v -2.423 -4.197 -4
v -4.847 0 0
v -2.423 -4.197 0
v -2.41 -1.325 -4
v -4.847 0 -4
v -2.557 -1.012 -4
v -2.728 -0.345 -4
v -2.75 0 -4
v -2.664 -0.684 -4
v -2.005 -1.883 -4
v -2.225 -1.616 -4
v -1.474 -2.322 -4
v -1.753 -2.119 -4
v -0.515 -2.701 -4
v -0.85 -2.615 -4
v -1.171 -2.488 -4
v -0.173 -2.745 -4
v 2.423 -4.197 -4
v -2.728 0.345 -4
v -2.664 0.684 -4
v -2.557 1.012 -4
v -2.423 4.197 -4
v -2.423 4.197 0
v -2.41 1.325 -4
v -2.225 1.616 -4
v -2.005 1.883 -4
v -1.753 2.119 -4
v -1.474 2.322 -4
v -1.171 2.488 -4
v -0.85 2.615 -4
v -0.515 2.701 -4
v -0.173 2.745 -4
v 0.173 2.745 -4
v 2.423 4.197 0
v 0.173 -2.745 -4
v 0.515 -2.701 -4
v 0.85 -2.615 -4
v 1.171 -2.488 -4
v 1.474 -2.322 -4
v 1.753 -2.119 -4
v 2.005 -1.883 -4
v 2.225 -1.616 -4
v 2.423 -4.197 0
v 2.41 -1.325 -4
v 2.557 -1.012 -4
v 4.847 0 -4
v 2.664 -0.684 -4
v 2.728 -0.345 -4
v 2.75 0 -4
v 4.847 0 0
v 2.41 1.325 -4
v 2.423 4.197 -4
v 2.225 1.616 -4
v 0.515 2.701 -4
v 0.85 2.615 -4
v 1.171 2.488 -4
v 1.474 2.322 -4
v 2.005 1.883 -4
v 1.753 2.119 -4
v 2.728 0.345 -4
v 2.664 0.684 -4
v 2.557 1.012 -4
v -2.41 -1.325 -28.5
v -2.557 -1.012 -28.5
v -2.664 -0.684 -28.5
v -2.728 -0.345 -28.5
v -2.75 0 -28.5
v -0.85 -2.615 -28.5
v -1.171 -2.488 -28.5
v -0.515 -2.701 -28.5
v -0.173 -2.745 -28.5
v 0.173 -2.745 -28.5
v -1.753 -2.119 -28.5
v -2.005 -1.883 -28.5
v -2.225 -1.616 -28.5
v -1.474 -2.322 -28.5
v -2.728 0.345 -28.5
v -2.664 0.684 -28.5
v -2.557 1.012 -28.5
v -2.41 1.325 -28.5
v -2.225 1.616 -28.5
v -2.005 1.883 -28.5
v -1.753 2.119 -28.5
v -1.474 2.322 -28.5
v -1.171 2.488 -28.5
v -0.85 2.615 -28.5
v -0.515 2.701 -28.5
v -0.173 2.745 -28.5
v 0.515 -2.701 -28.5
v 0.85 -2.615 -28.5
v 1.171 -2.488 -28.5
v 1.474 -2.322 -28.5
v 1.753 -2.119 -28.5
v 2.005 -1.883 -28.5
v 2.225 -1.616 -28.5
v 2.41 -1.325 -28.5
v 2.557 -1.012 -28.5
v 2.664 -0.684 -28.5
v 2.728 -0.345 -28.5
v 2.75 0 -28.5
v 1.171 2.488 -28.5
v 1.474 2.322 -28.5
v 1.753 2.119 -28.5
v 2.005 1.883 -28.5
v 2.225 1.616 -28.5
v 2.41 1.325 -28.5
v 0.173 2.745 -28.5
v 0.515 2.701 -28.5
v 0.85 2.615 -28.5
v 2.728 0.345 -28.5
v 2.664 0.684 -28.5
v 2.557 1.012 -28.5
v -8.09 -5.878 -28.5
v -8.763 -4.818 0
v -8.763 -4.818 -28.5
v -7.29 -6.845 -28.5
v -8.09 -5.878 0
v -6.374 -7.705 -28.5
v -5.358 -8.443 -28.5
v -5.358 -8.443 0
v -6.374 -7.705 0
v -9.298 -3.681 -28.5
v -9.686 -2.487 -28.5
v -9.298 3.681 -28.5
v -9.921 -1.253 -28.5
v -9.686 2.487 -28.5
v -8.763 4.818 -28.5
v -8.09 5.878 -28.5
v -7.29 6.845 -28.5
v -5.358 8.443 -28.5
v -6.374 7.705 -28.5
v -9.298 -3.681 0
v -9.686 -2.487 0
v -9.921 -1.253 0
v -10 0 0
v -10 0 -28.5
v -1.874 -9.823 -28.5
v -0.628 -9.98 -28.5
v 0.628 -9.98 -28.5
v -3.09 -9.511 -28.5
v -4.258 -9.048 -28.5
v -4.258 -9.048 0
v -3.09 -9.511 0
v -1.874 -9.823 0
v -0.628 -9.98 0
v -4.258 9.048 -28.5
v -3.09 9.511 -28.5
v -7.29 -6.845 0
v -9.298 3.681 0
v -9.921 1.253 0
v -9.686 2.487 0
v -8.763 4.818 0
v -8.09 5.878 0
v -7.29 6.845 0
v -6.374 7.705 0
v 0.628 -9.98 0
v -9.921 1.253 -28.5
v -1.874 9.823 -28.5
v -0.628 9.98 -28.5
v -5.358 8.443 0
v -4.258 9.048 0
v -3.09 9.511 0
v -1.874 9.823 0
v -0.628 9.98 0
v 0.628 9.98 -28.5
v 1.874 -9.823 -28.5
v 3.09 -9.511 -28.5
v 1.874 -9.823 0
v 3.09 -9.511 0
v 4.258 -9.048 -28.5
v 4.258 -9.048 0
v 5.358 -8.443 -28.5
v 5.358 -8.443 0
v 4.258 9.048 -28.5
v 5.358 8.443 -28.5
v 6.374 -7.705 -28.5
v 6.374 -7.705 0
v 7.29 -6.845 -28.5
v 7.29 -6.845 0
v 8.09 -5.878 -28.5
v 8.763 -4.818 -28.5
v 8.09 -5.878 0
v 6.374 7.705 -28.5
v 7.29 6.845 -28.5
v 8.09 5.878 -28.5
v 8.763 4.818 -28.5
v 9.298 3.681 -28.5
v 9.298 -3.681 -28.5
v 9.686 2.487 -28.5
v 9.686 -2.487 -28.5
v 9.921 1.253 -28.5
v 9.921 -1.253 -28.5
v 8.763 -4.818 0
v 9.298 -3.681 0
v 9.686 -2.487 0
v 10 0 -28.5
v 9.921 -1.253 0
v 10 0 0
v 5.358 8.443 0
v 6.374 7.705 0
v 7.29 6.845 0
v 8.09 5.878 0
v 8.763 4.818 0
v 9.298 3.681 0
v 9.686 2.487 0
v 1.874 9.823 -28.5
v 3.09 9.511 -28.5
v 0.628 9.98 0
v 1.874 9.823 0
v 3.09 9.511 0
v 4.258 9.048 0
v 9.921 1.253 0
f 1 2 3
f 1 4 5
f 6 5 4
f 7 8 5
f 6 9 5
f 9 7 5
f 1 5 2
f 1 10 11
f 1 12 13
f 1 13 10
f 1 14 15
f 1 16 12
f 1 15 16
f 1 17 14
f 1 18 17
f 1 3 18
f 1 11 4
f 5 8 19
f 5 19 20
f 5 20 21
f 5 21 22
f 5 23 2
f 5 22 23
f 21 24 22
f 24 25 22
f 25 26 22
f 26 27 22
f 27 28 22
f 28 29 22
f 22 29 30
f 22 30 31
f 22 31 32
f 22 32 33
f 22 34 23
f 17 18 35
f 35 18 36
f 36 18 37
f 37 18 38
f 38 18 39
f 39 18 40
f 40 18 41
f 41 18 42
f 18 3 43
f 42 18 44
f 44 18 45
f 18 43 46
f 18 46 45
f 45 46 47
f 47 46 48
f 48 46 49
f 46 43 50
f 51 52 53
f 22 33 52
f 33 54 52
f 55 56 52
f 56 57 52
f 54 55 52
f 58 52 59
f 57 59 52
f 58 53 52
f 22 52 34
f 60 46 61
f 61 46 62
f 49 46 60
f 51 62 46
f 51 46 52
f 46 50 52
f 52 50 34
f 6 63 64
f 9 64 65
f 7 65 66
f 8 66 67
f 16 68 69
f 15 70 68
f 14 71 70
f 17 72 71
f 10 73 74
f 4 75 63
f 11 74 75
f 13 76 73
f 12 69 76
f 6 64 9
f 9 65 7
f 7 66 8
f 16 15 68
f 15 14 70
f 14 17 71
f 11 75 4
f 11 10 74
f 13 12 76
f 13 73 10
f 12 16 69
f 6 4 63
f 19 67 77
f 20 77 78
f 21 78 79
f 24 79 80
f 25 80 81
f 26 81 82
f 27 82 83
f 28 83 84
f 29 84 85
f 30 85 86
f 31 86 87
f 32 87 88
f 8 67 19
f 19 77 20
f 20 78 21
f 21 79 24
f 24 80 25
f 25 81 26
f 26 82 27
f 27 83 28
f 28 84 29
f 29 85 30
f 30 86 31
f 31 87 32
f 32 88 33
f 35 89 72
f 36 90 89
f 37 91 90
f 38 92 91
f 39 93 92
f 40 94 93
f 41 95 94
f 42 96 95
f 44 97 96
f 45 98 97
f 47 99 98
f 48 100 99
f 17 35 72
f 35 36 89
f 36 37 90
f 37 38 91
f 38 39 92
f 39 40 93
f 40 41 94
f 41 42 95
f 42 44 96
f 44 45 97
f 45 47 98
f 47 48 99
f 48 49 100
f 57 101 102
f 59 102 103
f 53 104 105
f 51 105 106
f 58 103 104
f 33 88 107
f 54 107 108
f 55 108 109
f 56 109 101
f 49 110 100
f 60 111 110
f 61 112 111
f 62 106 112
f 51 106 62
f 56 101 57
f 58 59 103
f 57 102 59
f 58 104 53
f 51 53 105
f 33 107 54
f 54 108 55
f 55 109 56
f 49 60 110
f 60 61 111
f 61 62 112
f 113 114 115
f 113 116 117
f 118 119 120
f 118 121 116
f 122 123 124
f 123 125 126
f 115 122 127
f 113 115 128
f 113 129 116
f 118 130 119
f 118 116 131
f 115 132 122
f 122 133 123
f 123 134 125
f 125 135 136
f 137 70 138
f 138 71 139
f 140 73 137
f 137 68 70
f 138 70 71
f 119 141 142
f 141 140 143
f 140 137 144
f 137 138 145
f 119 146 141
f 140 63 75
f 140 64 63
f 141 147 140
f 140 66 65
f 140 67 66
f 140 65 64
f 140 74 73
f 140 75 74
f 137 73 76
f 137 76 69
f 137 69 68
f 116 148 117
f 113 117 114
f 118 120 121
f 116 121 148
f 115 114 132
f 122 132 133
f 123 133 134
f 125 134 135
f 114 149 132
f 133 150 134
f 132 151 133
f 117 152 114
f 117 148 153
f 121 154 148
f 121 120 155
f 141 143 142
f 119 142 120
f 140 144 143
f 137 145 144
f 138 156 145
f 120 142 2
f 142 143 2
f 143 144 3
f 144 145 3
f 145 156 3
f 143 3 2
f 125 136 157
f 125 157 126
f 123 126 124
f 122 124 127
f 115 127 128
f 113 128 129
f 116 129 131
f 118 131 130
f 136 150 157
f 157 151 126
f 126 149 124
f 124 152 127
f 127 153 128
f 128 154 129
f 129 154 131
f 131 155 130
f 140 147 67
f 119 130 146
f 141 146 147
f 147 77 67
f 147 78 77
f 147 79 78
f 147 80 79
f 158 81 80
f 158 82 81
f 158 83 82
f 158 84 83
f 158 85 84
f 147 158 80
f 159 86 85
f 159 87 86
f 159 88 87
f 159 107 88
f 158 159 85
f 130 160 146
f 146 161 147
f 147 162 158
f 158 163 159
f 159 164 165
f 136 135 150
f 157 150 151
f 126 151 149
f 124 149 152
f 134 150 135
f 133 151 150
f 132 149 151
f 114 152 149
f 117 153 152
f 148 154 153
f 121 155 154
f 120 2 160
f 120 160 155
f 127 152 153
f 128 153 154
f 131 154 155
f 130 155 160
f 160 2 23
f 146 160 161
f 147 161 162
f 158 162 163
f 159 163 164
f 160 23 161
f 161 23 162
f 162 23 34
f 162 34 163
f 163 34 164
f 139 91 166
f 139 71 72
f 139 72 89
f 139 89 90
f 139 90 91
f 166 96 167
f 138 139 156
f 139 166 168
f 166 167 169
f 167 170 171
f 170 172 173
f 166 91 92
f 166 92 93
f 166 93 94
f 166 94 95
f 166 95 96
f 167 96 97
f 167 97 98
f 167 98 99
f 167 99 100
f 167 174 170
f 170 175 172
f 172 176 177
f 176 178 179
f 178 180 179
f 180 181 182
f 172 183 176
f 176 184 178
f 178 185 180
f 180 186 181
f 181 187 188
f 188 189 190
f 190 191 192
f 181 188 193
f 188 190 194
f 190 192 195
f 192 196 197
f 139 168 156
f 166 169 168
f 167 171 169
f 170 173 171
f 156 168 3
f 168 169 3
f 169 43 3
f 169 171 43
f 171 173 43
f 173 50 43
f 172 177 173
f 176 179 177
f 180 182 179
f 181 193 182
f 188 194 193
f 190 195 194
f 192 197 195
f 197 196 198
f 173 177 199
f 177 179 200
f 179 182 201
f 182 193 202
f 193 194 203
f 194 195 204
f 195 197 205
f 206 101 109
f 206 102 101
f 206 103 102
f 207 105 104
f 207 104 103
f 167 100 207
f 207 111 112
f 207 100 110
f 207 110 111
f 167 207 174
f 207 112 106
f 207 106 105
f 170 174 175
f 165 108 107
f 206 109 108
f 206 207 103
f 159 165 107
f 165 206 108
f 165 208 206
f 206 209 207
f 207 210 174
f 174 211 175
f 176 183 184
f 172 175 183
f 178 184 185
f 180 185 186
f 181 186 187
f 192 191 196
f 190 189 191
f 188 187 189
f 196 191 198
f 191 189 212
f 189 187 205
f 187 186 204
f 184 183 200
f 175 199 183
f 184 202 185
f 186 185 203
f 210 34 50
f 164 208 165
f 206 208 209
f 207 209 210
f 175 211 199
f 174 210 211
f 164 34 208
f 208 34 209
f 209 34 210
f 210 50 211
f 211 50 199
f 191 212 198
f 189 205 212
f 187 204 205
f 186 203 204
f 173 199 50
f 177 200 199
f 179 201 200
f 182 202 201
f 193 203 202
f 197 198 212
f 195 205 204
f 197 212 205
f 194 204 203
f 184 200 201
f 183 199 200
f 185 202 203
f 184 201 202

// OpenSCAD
$fn = 50;

difference() {
	union() {
		translate(v = [0, 0, -28.5]) {
			cylinder(h = 28.5, r = 10.0);
		}
	}
	union() {
		translate(v = [0, 0, 0]) {
			rotate(a = [0, 0, 0]) {
				difference() {
					union() {
						translate(v = [0, 0, -4]) {
							linear_extrude(height = 4) {
								polygon(points = [[4.8468, 0.0], [2.4234000000000004, 4.197451927062417], [-2.423399999999999, 4.197451927062417], [-4.8468, 5.935618106107392e-16], [-2.423400000000002, -4.197451927062416], [2.423399999999997, -4.197451927062419]]);
							}
						}
					}
					union();
				}
			}
		}
		#translate(v = [0, 0, -100.0]) {
			cylinder(h = 200, r = 2.75);
		}
	}
}
